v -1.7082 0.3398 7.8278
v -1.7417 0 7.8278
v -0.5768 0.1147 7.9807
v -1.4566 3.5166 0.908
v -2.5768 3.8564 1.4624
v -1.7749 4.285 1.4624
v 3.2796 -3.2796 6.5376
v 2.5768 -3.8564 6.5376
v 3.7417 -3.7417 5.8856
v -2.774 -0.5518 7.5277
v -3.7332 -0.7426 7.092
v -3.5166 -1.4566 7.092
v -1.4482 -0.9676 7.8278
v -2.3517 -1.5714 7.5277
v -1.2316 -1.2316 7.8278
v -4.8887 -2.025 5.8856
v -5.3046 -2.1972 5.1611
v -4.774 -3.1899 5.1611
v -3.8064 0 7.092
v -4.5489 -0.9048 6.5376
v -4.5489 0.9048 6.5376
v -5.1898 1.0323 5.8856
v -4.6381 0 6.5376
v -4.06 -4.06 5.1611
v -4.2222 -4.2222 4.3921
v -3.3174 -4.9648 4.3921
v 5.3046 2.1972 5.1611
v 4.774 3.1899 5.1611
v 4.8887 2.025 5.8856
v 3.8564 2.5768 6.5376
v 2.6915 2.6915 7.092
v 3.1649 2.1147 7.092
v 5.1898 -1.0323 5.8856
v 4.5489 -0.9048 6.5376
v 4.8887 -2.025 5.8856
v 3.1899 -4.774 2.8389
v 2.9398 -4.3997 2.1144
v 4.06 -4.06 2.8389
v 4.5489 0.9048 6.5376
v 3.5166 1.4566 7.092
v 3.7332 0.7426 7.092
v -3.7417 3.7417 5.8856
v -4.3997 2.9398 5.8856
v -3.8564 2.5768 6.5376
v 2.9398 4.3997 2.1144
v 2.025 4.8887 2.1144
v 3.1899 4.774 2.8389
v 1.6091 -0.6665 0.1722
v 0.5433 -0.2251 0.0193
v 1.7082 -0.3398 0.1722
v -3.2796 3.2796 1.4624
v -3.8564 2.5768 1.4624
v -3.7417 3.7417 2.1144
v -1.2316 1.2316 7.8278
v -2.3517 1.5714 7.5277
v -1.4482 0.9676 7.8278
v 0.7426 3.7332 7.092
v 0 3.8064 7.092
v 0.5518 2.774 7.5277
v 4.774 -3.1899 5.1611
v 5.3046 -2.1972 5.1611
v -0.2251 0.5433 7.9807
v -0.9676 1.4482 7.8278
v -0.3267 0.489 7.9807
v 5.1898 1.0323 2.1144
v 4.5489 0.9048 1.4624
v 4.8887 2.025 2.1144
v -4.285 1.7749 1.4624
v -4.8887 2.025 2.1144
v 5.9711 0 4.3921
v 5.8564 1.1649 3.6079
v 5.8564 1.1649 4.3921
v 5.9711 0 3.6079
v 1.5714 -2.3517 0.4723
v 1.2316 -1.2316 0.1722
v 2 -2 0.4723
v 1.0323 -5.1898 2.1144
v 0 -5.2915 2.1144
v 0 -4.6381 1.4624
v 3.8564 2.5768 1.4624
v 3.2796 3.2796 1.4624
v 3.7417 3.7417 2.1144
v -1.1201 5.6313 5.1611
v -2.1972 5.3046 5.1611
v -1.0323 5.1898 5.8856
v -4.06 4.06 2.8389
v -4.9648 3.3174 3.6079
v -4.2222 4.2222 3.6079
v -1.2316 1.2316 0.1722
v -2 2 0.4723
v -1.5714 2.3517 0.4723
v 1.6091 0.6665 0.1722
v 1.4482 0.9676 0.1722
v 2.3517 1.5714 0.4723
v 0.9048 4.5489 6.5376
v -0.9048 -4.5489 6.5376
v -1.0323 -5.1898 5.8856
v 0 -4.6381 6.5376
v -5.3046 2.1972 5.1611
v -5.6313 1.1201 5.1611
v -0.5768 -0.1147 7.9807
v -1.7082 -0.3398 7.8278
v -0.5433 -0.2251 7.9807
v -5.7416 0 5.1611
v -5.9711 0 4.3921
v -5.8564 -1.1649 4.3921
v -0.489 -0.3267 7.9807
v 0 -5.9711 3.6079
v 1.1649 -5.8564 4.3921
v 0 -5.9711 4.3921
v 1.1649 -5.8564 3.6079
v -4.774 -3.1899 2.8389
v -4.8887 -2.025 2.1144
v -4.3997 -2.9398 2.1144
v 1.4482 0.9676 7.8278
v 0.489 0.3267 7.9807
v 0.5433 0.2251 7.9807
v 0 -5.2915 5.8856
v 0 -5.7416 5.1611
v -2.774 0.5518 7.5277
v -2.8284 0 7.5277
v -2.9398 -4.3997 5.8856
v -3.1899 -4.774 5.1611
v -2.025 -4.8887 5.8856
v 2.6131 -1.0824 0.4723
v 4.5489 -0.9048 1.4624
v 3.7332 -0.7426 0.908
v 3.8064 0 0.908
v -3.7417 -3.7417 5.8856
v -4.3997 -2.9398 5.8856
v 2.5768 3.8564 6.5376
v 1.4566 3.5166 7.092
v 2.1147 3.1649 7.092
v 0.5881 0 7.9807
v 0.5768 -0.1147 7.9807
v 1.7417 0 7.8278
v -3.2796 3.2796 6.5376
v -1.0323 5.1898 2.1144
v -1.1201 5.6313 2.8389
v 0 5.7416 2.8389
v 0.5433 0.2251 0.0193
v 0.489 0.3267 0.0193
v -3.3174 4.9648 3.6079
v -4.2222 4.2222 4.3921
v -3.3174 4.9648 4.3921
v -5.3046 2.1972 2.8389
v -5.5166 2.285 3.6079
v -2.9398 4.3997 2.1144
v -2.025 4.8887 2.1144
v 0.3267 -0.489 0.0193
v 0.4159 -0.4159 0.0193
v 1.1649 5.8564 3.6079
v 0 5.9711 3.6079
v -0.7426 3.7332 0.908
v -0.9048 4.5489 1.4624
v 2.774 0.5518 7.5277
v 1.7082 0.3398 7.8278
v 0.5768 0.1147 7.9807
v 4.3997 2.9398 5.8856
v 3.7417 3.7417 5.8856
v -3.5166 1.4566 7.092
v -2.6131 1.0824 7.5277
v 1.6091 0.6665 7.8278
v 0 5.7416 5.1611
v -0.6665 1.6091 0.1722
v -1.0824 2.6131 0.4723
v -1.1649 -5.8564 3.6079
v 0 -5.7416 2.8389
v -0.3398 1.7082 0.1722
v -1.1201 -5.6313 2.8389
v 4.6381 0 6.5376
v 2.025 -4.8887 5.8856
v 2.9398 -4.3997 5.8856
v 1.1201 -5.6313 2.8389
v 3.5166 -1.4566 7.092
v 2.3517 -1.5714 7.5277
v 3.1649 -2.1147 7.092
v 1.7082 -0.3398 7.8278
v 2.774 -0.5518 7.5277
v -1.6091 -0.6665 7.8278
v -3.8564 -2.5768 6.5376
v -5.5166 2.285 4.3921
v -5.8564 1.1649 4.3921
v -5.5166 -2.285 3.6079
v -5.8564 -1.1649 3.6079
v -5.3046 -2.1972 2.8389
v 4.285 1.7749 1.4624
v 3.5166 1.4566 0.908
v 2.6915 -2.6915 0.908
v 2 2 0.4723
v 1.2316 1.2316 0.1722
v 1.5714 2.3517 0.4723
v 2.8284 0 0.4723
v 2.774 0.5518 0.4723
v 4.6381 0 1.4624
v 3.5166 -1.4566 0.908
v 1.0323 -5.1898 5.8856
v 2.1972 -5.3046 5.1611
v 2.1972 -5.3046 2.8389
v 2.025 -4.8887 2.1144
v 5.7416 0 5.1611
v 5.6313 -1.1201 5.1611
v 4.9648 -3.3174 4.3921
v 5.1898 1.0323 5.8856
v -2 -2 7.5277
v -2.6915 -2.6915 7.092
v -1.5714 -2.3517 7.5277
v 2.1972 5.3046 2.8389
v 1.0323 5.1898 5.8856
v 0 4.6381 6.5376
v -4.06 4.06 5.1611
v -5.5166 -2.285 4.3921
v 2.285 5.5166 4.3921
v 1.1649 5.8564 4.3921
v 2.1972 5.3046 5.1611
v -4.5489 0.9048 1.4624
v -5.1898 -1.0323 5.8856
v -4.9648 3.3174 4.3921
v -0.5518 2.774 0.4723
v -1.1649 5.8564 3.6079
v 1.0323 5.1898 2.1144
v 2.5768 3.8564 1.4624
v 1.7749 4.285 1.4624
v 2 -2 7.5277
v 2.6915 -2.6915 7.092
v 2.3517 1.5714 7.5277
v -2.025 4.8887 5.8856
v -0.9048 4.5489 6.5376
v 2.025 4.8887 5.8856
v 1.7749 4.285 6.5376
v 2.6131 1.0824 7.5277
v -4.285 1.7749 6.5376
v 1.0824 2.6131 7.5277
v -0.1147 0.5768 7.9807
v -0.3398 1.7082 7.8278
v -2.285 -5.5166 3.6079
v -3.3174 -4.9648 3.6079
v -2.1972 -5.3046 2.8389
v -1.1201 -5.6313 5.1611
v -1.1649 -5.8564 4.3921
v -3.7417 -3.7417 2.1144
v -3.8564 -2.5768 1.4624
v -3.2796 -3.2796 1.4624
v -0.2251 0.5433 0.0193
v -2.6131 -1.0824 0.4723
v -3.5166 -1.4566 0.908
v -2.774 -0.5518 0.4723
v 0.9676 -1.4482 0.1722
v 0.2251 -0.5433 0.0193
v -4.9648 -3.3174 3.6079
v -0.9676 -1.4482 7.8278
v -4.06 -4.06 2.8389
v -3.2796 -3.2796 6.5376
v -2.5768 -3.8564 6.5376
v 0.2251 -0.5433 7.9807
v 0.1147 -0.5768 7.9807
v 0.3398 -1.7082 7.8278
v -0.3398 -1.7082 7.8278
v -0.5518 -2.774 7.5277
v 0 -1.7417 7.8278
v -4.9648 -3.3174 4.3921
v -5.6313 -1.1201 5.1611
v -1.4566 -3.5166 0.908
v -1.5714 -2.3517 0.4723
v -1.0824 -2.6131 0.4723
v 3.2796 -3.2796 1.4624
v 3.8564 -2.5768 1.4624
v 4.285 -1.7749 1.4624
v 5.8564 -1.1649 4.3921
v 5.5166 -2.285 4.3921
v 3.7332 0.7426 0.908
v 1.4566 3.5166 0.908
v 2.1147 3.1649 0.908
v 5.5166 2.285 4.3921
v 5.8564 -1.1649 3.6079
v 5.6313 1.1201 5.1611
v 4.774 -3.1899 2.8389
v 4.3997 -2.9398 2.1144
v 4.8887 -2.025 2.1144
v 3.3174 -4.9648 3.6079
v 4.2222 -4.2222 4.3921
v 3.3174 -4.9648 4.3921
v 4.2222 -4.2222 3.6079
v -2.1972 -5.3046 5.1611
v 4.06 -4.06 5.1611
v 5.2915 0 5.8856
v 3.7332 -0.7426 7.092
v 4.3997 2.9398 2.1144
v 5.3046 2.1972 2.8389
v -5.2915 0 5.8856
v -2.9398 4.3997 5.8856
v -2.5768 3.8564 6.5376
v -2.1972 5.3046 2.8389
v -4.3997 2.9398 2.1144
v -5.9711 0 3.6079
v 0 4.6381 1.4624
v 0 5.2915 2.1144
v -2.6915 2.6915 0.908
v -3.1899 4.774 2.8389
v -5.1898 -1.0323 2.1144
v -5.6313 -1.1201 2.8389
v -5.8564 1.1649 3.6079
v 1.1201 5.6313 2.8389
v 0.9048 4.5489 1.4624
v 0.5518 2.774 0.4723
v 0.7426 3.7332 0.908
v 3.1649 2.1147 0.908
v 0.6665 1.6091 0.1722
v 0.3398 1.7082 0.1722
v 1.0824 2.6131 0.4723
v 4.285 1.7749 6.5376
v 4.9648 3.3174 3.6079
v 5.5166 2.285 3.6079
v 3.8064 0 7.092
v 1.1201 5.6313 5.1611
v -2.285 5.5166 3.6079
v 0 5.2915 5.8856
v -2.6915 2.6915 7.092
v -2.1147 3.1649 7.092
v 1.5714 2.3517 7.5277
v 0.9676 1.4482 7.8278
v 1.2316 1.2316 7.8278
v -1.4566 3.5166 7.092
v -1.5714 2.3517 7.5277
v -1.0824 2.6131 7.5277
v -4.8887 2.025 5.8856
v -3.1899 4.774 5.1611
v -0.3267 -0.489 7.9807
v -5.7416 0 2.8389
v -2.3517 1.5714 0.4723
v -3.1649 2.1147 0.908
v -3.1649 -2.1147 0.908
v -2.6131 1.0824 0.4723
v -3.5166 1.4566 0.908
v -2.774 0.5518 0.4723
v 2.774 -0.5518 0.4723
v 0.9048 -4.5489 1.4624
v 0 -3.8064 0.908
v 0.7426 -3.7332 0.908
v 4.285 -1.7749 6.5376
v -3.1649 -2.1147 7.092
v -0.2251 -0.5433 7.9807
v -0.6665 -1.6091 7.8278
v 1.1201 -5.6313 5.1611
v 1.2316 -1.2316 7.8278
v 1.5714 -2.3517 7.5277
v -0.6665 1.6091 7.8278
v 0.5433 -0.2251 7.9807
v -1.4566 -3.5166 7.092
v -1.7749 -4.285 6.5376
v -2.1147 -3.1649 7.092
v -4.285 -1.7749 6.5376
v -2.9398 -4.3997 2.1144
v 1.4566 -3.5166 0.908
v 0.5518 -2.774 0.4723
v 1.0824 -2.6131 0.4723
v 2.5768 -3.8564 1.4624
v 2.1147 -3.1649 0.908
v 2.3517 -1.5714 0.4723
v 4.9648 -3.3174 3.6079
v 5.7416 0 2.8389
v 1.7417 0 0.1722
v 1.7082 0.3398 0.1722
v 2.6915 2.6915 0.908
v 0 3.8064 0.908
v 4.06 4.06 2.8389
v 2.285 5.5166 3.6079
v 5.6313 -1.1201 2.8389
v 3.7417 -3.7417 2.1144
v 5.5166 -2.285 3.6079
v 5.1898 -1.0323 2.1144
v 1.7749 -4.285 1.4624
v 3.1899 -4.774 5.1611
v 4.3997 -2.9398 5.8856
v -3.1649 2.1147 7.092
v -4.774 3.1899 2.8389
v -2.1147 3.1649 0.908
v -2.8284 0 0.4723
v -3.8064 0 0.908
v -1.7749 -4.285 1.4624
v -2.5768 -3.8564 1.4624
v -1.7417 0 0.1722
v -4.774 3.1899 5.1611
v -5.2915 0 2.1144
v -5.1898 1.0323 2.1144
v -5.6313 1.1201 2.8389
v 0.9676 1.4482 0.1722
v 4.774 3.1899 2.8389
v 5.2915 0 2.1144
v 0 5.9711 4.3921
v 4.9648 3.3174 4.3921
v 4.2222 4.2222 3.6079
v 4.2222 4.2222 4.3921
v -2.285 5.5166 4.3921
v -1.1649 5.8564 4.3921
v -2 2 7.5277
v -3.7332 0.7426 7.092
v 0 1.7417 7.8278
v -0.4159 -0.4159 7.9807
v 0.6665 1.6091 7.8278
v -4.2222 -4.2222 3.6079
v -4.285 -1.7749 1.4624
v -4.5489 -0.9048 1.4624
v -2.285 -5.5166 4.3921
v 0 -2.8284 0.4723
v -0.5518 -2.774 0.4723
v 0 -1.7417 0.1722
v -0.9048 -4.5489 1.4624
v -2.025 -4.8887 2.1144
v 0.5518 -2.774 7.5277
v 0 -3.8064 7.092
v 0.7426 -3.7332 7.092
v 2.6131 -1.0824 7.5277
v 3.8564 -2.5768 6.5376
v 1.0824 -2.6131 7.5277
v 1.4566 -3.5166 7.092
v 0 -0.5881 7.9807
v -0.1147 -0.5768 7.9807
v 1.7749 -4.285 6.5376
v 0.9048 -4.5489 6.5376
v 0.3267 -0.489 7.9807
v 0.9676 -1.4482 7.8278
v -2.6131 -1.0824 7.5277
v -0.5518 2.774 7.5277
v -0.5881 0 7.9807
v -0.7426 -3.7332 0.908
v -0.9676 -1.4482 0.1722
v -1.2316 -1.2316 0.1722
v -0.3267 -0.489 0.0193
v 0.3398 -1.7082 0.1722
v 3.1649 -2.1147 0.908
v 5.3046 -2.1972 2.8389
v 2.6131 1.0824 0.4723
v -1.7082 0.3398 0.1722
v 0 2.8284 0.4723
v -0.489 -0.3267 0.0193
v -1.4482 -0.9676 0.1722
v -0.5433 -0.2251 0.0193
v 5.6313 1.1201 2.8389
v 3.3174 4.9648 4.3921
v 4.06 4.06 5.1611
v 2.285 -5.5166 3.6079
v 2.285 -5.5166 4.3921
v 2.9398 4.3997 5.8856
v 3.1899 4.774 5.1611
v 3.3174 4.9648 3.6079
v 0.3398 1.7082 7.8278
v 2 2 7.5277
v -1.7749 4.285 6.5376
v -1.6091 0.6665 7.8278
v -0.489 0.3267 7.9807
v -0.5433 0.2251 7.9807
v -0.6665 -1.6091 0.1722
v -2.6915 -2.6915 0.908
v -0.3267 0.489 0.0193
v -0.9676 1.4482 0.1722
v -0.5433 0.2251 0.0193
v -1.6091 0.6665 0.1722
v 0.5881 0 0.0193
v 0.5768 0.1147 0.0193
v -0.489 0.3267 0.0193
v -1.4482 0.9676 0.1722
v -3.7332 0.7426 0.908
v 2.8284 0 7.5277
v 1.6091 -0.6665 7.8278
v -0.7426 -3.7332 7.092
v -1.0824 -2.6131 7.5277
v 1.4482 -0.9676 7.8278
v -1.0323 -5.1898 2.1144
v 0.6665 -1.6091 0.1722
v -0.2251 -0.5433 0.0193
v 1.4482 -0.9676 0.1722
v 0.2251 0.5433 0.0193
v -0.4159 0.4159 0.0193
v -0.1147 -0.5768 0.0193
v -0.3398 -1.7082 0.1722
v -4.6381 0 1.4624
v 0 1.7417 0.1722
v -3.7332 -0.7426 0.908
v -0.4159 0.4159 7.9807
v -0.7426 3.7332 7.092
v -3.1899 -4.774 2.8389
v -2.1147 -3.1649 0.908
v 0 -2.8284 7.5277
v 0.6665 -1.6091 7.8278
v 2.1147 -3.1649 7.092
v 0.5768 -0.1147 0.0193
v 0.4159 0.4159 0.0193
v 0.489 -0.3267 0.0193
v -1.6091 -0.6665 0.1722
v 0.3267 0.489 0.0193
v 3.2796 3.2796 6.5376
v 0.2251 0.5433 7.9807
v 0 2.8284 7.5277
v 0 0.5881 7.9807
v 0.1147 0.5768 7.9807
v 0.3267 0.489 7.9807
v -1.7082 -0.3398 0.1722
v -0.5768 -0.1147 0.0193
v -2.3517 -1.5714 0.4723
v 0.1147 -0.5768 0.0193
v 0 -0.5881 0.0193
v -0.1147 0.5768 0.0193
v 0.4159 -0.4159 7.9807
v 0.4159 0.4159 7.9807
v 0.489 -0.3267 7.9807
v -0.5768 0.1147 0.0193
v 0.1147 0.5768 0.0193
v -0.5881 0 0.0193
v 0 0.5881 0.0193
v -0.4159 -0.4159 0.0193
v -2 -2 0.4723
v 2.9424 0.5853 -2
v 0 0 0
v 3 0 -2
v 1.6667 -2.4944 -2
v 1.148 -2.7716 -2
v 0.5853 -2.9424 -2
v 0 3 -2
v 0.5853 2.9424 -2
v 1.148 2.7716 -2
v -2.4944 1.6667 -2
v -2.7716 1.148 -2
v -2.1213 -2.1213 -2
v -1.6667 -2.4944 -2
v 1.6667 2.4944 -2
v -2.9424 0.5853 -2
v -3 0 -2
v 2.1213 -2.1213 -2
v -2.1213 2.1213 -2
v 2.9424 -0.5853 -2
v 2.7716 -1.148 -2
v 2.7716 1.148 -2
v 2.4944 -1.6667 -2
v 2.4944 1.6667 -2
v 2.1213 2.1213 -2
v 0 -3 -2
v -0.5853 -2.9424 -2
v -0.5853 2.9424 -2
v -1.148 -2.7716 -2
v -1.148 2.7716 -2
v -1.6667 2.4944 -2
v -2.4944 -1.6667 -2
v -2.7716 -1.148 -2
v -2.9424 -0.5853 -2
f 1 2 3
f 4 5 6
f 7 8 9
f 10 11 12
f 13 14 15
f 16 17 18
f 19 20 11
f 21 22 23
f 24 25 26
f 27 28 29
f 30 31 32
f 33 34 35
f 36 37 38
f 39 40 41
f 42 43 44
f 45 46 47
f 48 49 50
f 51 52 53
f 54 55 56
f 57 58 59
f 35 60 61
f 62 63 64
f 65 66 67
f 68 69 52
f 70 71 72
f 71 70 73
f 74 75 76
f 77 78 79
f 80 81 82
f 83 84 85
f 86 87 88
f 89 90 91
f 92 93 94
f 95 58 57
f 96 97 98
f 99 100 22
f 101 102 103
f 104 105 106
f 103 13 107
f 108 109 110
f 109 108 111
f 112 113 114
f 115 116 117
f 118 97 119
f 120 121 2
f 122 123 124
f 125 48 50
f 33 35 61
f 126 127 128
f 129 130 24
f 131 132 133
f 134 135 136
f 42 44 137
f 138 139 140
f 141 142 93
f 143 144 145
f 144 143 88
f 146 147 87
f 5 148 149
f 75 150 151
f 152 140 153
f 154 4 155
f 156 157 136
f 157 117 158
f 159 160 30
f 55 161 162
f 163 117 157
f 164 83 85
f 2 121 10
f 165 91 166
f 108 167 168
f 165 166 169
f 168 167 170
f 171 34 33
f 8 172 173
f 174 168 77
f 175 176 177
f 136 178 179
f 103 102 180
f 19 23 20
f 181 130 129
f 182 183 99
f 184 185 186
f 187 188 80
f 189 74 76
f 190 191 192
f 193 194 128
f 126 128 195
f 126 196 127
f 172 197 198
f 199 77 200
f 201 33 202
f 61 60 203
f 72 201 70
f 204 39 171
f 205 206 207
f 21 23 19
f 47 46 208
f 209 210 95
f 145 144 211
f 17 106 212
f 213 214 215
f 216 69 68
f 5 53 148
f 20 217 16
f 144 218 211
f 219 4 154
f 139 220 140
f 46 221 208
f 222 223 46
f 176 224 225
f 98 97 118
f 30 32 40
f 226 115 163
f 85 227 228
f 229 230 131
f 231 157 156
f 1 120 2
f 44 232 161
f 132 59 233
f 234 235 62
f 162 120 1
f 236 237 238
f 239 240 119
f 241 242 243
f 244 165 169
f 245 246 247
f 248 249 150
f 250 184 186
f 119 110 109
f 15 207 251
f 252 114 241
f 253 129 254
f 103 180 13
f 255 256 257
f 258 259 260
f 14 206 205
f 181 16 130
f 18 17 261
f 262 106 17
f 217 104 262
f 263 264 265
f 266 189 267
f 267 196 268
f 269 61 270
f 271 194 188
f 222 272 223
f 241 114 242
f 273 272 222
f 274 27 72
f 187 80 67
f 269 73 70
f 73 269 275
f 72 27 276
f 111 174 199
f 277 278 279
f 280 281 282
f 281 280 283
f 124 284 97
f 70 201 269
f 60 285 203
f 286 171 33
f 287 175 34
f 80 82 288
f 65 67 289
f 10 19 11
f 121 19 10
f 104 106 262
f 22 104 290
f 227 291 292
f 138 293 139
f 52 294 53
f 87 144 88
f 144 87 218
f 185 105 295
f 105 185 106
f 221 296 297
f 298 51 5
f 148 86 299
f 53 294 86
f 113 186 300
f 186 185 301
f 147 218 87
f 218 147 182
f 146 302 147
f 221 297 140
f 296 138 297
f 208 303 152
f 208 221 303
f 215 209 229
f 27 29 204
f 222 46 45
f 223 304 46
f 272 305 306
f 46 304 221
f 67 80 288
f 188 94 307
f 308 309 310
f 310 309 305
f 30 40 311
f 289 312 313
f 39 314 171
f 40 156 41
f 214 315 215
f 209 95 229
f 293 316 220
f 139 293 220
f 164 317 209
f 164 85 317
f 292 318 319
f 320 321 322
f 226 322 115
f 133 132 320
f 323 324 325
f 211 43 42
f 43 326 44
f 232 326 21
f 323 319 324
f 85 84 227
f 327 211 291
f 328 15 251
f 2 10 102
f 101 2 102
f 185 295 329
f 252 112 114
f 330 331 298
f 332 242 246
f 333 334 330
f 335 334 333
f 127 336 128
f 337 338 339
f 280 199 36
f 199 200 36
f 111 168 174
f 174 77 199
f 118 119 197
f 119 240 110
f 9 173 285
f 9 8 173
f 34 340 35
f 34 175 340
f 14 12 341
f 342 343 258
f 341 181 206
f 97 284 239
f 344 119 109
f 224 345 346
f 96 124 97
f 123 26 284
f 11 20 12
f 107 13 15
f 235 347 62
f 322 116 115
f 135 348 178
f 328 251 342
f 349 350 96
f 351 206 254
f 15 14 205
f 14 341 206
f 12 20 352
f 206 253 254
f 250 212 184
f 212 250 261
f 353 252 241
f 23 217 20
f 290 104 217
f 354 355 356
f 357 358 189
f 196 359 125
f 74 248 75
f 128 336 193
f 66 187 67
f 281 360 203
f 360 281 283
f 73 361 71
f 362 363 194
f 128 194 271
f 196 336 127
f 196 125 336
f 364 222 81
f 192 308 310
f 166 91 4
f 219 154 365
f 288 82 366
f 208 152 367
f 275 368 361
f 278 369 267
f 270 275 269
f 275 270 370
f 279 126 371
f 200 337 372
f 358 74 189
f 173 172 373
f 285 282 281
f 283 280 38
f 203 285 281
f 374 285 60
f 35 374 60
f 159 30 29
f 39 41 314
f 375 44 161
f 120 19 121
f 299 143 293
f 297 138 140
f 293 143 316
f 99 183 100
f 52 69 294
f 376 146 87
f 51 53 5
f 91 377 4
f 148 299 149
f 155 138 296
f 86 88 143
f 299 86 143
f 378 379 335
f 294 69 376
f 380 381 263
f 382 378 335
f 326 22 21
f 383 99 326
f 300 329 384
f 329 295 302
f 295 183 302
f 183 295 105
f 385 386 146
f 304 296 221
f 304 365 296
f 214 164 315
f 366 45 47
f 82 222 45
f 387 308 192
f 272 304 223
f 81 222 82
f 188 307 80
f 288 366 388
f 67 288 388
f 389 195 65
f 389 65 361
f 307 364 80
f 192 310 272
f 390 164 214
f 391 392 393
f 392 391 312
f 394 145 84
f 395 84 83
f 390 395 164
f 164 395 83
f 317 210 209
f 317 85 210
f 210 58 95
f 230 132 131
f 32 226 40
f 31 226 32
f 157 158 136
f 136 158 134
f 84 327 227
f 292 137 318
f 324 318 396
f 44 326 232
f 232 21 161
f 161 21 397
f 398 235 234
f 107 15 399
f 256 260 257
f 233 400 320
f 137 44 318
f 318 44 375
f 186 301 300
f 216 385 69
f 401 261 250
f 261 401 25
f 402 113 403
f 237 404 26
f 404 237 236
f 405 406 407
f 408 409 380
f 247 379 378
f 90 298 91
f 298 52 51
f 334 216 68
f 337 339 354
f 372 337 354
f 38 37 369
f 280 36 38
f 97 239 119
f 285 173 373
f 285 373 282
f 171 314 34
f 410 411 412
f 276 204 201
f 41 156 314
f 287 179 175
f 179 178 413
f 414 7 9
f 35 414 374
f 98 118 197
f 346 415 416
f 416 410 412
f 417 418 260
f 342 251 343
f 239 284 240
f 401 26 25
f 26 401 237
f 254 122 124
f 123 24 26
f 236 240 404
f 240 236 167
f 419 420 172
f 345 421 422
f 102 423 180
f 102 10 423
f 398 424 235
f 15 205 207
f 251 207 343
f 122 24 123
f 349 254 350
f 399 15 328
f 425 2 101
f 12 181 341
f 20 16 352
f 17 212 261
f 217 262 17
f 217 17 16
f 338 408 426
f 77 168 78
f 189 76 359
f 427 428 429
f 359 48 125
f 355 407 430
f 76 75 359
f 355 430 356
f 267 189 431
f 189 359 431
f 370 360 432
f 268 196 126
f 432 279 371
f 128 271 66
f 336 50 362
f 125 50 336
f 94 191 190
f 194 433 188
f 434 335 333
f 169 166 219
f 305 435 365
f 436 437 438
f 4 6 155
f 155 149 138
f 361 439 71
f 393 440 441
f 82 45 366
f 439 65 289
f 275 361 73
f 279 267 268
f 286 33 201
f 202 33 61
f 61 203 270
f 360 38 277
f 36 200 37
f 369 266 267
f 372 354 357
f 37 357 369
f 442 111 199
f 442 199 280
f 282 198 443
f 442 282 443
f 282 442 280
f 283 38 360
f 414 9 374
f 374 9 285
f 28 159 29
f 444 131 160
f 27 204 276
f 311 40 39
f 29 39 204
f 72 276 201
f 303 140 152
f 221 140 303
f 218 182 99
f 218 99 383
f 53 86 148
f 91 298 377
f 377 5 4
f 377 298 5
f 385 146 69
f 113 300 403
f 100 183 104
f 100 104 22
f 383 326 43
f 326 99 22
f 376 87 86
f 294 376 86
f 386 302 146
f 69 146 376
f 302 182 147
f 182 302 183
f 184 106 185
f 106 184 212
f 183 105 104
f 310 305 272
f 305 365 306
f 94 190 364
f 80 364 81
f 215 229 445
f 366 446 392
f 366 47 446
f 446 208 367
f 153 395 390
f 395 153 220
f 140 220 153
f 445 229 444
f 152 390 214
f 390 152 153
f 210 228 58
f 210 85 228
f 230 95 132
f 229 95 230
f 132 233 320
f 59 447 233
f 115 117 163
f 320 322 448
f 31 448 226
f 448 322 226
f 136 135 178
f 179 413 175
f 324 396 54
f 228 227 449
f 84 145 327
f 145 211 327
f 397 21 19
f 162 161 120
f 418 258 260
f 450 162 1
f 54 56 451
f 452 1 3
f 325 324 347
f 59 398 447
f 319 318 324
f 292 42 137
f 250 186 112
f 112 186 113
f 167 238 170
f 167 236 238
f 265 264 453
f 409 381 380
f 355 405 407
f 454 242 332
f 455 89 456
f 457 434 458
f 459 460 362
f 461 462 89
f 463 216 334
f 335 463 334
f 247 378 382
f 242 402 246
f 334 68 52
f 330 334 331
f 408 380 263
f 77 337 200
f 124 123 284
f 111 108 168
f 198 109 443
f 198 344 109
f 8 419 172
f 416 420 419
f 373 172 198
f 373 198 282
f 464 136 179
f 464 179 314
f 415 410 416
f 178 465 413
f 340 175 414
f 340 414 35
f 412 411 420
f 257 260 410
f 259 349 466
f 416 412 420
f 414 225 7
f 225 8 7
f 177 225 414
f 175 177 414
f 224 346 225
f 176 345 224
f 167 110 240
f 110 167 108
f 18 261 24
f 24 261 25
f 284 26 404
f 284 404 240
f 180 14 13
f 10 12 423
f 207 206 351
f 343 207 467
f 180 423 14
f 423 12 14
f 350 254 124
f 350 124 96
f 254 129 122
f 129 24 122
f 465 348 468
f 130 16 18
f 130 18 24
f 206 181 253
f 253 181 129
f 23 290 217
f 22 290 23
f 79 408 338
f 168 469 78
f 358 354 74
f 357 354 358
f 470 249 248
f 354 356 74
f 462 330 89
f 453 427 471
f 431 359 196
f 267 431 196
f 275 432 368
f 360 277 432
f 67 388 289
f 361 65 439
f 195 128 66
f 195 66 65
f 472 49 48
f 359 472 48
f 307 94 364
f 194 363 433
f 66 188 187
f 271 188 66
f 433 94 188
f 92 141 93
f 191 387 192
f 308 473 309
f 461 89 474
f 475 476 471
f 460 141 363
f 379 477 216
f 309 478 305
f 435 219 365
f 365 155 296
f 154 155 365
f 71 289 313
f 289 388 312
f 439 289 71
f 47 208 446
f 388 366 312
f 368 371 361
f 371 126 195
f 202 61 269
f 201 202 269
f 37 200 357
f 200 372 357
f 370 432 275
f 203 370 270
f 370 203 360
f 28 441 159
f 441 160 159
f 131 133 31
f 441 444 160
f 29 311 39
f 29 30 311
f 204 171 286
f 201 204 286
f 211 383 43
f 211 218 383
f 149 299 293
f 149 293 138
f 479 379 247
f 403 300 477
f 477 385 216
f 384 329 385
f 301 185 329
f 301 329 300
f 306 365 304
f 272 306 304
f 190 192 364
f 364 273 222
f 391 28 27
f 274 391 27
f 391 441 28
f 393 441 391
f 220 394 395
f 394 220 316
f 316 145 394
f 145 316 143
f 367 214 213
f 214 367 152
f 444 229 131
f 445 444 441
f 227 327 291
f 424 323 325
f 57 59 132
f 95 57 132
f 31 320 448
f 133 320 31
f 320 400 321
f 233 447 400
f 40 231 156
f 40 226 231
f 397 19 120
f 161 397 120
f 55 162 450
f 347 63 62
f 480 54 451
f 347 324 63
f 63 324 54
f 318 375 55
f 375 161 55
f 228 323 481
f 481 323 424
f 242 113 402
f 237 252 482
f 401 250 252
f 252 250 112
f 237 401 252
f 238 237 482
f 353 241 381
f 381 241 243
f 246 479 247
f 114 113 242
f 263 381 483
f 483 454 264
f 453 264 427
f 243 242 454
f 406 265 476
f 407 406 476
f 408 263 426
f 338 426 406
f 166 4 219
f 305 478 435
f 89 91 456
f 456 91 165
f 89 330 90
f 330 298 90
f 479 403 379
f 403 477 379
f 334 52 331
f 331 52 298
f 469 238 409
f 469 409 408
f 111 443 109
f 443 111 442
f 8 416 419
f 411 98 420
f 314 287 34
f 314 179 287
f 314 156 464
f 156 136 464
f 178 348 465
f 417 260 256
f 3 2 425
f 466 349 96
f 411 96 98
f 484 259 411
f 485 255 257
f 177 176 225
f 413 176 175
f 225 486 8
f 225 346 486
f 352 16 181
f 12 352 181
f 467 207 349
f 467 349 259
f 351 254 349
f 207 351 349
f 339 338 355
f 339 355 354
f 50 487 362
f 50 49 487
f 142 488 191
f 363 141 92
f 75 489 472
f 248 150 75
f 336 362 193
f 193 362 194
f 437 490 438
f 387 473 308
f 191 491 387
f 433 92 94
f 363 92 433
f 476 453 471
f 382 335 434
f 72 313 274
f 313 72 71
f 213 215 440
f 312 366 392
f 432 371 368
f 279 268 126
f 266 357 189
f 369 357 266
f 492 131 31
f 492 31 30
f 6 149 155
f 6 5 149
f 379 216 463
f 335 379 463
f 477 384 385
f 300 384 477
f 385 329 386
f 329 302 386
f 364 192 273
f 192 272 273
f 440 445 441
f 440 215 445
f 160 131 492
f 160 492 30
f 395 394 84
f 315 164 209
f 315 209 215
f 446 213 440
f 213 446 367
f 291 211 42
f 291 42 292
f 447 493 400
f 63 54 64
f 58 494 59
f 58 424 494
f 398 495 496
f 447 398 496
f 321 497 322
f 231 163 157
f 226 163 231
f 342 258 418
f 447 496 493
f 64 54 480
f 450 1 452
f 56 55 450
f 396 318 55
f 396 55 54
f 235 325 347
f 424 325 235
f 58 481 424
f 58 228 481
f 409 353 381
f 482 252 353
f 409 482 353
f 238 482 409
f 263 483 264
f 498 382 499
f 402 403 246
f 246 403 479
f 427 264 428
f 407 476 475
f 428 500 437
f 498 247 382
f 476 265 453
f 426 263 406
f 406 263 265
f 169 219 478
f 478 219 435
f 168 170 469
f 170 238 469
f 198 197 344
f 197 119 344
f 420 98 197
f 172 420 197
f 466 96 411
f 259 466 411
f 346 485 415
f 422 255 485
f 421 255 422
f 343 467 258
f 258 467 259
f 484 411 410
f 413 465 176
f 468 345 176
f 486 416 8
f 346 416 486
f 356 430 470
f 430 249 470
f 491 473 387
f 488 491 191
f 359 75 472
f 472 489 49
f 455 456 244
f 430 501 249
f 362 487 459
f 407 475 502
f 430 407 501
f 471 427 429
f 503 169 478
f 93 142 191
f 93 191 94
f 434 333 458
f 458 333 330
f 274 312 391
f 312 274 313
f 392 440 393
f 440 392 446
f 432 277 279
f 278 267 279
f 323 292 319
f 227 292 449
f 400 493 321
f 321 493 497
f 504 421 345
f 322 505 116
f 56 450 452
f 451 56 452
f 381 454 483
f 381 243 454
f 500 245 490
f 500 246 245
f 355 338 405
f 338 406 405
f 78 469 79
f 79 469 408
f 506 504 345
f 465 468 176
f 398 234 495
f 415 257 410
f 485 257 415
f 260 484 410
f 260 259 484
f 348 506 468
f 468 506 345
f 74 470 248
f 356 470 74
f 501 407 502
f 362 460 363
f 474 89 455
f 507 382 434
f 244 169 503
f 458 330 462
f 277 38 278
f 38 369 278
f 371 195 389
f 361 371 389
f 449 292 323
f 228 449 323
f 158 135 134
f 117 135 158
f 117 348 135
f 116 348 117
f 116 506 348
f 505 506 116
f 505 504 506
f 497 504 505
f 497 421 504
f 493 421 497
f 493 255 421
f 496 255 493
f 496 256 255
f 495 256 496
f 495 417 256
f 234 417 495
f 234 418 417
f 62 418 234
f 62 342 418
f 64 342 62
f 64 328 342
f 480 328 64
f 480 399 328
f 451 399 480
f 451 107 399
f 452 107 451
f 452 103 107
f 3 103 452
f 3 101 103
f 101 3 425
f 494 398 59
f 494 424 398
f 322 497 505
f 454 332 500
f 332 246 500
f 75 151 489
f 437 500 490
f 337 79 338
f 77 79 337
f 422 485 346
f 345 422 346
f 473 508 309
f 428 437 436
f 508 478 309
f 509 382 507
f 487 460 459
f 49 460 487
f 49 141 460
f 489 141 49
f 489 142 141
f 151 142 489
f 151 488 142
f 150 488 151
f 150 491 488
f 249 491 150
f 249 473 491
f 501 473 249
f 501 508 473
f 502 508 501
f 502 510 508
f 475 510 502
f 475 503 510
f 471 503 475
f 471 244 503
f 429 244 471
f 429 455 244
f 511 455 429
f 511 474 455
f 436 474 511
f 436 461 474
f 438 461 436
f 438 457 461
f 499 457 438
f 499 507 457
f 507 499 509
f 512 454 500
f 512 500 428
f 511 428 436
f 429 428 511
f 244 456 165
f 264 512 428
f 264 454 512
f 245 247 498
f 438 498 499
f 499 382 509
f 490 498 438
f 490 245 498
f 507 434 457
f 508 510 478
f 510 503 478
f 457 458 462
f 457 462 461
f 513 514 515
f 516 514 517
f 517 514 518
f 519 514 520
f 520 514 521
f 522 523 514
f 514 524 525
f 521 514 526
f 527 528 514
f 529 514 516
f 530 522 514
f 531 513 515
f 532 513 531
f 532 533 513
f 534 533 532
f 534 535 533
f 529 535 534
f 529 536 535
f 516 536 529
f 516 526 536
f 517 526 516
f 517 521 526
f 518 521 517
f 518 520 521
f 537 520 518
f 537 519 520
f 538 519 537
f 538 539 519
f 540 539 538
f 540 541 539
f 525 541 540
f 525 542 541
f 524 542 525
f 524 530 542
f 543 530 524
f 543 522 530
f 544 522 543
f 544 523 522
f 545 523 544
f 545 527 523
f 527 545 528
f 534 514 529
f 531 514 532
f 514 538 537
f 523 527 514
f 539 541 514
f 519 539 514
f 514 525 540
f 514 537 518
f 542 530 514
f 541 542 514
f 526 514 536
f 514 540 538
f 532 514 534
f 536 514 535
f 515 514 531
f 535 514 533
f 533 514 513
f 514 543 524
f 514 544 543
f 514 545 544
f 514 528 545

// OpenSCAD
$fn = 32;

// UFO Main Body (Saucer)
difference() {
    scale([2.5, 2.5, 0.6]) sphere(r=10);
    scale([2.6, 2.6, 0.7]) sphere(r=10);
}

// Cockpit Dome (Glass)
translate([0, 0, 4])
scale([1.2, 1.2, 0.8]) sphere(r=5);

// Underside detail (small sphere or cylinder)
translate([0, 0, -2])
cylinder(h=2, r1=3, r2=0, center=false);
